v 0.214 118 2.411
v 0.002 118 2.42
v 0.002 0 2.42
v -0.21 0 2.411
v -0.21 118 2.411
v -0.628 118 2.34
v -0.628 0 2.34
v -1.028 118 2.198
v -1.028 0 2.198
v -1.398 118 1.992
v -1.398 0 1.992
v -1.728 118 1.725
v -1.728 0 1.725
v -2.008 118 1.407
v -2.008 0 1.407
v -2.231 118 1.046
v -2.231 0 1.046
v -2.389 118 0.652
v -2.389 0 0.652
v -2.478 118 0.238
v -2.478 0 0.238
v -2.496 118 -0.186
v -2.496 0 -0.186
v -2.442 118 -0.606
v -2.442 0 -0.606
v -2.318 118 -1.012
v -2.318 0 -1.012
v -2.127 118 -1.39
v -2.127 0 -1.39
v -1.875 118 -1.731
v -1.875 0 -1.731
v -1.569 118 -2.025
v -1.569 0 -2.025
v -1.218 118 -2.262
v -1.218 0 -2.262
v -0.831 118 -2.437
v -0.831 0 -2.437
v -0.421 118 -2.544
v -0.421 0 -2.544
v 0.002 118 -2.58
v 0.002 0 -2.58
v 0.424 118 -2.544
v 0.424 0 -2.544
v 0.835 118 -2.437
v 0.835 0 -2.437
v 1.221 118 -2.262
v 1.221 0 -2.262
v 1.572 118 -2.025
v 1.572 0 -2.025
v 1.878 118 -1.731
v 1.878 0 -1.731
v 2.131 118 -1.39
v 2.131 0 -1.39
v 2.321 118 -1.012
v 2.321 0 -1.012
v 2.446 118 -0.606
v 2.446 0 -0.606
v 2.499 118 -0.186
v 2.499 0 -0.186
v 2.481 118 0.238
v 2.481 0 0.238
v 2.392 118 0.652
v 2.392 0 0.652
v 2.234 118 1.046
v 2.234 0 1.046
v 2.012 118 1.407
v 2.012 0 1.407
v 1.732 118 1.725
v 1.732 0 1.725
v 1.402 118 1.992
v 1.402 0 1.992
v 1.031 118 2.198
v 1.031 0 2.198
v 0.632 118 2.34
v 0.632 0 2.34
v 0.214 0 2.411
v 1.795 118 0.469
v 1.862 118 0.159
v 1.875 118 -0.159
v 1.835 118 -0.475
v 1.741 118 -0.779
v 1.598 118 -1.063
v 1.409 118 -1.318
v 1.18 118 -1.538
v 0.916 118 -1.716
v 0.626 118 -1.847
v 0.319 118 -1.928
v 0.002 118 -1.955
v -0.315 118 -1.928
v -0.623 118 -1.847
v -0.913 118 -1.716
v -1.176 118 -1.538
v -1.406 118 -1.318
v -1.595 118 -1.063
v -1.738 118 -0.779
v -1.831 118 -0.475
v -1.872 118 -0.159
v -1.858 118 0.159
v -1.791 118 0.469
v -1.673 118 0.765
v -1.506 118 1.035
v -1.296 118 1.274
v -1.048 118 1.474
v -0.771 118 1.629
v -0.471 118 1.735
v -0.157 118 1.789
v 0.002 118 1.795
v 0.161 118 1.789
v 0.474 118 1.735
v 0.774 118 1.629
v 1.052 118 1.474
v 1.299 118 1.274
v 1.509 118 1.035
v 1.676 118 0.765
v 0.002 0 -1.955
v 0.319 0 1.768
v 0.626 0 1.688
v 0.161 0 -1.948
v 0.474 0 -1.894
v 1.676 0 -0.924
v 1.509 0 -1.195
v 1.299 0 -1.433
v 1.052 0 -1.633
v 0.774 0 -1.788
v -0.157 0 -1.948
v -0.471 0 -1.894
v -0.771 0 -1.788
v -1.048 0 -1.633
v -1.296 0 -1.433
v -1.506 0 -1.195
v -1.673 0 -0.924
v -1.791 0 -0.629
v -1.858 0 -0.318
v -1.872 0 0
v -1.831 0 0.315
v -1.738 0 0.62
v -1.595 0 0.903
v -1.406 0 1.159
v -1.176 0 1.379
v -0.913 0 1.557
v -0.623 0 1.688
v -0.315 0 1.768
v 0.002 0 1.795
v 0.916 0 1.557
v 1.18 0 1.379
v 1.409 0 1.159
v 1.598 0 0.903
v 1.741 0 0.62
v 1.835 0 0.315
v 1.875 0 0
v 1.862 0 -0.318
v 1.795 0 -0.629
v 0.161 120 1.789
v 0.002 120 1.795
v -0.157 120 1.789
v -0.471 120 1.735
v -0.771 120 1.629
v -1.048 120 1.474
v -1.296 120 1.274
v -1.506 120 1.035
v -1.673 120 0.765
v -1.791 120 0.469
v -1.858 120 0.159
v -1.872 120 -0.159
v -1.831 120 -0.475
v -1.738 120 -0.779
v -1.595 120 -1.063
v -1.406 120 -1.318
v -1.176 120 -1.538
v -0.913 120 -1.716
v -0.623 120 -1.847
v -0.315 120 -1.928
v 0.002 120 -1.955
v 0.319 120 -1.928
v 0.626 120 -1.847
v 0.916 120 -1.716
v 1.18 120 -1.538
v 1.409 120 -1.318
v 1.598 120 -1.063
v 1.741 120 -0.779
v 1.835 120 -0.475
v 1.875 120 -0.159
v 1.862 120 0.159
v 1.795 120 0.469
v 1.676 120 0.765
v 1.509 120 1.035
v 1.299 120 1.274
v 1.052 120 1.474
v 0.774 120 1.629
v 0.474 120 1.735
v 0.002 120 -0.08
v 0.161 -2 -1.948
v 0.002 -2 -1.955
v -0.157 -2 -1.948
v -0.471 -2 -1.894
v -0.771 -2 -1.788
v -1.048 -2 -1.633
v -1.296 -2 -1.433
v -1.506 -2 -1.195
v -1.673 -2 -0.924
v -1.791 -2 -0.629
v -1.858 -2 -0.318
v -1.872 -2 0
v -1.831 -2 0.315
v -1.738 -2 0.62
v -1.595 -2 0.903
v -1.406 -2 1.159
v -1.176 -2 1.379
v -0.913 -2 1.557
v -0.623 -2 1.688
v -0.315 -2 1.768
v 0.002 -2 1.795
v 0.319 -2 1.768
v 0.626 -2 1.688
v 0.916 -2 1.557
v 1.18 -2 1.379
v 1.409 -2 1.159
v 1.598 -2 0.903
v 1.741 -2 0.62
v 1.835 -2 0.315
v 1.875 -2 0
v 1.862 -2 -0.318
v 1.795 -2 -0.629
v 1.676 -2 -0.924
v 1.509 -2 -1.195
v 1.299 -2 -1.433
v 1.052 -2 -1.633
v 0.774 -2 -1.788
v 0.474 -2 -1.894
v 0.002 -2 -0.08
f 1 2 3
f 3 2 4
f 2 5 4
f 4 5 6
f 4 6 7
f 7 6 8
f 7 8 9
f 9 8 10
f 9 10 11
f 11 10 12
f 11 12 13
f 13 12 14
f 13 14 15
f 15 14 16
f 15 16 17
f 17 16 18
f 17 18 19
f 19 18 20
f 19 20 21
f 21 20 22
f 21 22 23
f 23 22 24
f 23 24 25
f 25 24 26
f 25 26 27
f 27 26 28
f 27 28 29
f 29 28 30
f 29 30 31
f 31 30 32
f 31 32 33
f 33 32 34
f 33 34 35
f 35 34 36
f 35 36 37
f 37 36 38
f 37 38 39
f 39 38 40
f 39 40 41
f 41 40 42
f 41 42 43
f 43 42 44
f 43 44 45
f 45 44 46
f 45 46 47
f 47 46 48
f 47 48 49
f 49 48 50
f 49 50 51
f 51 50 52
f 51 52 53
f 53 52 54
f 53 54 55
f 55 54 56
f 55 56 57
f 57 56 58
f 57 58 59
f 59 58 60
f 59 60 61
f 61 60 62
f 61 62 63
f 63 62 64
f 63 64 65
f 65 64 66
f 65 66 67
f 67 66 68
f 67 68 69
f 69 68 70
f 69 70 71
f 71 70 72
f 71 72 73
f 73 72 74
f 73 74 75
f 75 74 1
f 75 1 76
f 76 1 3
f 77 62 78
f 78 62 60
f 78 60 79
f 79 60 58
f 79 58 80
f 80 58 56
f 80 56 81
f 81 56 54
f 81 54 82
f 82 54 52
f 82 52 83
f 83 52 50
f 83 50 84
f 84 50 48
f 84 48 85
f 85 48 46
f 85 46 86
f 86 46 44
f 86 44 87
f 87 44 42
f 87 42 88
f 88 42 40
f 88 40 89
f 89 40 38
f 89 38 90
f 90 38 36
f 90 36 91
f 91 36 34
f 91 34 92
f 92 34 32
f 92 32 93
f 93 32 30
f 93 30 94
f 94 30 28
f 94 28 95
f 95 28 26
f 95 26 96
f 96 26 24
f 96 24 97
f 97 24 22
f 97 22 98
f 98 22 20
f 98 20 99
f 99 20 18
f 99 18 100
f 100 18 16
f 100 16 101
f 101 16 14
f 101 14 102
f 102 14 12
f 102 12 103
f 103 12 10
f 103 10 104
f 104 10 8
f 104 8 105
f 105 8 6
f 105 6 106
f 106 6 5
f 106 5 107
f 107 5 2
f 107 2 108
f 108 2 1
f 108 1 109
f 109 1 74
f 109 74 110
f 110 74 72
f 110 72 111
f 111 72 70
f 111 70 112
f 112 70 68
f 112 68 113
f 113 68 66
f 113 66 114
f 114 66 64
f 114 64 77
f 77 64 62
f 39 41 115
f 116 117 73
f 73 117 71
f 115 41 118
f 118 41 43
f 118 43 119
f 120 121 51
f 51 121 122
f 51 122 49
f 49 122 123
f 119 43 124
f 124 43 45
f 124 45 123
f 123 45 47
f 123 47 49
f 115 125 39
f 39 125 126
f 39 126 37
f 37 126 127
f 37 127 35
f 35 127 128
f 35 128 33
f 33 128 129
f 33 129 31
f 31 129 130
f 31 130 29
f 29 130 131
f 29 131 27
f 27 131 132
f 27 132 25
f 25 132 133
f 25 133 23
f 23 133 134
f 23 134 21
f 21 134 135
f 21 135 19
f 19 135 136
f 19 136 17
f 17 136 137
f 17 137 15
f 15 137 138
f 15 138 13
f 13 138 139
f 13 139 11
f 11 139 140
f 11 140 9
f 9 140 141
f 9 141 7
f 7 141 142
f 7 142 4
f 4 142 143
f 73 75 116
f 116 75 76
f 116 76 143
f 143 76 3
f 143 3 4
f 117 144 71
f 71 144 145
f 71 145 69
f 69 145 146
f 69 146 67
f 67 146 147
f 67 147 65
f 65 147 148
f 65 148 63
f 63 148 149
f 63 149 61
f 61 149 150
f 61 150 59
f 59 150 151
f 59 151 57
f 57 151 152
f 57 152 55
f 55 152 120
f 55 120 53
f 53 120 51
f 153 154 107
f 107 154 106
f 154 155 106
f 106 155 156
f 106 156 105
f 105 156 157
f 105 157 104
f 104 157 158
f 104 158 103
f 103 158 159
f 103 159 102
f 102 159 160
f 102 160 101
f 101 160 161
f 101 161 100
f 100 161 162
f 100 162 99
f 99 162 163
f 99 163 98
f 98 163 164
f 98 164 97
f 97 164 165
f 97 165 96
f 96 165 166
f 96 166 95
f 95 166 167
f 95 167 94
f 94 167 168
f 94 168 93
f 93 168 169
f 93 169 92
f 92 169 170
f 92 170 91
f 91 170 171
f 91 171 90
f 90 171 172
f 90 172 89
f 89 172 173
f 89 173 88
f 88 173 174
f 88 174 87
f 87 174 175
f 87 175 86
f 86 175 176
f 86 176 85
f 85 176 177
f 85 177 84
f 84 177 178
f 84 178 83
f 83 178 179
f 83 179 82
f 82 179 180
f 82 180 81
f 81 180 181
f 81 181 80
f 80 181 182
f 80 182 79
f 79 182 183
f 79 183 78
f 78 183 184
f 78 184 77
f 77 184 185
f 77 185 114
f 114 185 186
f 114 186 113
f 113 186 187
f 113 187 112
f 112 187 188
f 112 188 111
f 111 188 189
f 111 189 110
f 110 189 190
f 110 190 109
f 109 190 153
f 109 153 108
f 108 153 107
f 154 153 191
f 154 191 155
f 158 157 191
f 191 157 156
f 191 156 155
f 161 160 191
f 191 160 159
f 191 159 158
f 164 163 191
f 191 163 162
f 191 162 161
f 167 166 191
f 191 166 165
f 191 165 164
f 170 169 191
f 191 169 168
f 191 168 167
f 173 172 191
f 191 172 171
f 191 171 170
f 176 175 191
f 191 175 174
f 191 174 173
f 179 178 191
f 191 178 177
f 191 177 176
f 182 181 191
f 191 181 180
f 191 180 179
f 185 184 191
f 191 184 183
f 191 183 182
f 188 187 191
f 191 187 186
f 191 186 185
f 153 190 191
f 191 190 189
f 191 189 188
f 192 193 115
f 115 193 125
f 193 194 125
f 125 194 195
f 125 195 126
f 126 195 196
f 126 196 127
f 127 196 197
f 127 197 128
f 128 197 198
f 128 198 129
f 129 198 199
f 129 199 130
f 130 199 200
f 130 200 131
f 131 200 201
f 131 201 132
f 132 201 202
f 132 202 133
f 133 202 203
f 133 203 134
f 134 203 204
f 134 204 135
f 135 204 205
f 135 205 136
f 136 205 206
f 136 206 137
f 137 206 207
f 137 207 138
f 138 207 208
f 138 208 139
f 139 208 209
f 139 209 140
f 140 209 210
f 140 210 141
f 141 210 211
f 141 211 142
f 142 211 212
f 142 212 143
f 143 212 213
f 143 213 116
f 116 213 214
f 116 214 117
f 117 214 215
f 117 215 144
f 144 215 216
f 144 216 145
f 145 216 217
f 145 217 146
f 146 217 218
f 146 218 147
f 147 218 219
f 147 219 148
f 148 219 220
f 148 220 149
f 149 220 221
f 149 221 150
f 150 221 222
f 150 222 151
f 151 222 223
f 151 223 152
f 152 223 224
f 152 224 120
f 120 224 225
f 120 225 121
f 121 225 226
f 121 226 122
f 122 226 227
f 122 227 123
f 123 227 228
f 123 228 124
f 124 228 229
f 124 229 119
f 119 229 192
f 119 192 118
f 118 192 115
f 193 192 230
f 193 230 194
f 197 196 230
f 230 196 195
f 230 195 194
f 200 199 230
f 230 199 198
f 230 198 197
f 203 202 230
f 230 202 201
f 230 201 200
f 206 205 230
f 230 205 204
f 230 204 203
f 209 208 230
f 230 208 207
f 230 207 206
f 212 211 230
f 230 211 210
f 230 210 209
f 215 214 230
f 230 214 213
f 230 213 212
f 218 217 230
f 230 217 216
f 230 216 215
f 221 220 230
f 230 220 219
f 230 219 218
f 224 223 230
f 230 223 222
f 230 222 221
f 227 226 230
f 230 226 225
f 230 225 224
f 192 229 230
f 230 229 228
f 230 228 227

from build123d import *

# Parameters (mm, degrees)
CROQUIS1_R              = 2.5
SALIENTE_EXTRUIR1_DEPTH = 118
CROQUIS2_R              = 1.875
SALIENTE_EXTRUIR2_DEPTH = 2
CROQUIS3_R              = 1.875
SALIENTE_EXTRUIR3_DEPTH = 2


with BuildPart() as part:
    # Croquis1 → Saliente-Extruir1 (new body)
    with BuildSketch(Plane(origin=(0, 0, 0), x_dir=(1, 0, 0), z_dir=(0, 1, 0))):
        Circle(CROQUIS1_R)
    extrude(amount=SALIENTE_EXTRUIR1_DEPTH)

    # Croquis2 → Saliente-Extruir2 (add)
    with BuildSketch(Plane(origin=(0, 118, 0), x_dir=(1, 0, 0), z_dir=(0, 1, 0))):
        Circle(CROQUIS2_R)
    extrude(amount=SALIENTE_EXTRUIR2_DEPTH)

    # Croquis3 → Saliente-Extruir3 (add)
    with BuildSketch(Plane.XZ):
        Circle(CROQUIS3_R)
    extrude(amount=SALIENTE_EXTRUIR3_DEPTH)


solid = part.part
